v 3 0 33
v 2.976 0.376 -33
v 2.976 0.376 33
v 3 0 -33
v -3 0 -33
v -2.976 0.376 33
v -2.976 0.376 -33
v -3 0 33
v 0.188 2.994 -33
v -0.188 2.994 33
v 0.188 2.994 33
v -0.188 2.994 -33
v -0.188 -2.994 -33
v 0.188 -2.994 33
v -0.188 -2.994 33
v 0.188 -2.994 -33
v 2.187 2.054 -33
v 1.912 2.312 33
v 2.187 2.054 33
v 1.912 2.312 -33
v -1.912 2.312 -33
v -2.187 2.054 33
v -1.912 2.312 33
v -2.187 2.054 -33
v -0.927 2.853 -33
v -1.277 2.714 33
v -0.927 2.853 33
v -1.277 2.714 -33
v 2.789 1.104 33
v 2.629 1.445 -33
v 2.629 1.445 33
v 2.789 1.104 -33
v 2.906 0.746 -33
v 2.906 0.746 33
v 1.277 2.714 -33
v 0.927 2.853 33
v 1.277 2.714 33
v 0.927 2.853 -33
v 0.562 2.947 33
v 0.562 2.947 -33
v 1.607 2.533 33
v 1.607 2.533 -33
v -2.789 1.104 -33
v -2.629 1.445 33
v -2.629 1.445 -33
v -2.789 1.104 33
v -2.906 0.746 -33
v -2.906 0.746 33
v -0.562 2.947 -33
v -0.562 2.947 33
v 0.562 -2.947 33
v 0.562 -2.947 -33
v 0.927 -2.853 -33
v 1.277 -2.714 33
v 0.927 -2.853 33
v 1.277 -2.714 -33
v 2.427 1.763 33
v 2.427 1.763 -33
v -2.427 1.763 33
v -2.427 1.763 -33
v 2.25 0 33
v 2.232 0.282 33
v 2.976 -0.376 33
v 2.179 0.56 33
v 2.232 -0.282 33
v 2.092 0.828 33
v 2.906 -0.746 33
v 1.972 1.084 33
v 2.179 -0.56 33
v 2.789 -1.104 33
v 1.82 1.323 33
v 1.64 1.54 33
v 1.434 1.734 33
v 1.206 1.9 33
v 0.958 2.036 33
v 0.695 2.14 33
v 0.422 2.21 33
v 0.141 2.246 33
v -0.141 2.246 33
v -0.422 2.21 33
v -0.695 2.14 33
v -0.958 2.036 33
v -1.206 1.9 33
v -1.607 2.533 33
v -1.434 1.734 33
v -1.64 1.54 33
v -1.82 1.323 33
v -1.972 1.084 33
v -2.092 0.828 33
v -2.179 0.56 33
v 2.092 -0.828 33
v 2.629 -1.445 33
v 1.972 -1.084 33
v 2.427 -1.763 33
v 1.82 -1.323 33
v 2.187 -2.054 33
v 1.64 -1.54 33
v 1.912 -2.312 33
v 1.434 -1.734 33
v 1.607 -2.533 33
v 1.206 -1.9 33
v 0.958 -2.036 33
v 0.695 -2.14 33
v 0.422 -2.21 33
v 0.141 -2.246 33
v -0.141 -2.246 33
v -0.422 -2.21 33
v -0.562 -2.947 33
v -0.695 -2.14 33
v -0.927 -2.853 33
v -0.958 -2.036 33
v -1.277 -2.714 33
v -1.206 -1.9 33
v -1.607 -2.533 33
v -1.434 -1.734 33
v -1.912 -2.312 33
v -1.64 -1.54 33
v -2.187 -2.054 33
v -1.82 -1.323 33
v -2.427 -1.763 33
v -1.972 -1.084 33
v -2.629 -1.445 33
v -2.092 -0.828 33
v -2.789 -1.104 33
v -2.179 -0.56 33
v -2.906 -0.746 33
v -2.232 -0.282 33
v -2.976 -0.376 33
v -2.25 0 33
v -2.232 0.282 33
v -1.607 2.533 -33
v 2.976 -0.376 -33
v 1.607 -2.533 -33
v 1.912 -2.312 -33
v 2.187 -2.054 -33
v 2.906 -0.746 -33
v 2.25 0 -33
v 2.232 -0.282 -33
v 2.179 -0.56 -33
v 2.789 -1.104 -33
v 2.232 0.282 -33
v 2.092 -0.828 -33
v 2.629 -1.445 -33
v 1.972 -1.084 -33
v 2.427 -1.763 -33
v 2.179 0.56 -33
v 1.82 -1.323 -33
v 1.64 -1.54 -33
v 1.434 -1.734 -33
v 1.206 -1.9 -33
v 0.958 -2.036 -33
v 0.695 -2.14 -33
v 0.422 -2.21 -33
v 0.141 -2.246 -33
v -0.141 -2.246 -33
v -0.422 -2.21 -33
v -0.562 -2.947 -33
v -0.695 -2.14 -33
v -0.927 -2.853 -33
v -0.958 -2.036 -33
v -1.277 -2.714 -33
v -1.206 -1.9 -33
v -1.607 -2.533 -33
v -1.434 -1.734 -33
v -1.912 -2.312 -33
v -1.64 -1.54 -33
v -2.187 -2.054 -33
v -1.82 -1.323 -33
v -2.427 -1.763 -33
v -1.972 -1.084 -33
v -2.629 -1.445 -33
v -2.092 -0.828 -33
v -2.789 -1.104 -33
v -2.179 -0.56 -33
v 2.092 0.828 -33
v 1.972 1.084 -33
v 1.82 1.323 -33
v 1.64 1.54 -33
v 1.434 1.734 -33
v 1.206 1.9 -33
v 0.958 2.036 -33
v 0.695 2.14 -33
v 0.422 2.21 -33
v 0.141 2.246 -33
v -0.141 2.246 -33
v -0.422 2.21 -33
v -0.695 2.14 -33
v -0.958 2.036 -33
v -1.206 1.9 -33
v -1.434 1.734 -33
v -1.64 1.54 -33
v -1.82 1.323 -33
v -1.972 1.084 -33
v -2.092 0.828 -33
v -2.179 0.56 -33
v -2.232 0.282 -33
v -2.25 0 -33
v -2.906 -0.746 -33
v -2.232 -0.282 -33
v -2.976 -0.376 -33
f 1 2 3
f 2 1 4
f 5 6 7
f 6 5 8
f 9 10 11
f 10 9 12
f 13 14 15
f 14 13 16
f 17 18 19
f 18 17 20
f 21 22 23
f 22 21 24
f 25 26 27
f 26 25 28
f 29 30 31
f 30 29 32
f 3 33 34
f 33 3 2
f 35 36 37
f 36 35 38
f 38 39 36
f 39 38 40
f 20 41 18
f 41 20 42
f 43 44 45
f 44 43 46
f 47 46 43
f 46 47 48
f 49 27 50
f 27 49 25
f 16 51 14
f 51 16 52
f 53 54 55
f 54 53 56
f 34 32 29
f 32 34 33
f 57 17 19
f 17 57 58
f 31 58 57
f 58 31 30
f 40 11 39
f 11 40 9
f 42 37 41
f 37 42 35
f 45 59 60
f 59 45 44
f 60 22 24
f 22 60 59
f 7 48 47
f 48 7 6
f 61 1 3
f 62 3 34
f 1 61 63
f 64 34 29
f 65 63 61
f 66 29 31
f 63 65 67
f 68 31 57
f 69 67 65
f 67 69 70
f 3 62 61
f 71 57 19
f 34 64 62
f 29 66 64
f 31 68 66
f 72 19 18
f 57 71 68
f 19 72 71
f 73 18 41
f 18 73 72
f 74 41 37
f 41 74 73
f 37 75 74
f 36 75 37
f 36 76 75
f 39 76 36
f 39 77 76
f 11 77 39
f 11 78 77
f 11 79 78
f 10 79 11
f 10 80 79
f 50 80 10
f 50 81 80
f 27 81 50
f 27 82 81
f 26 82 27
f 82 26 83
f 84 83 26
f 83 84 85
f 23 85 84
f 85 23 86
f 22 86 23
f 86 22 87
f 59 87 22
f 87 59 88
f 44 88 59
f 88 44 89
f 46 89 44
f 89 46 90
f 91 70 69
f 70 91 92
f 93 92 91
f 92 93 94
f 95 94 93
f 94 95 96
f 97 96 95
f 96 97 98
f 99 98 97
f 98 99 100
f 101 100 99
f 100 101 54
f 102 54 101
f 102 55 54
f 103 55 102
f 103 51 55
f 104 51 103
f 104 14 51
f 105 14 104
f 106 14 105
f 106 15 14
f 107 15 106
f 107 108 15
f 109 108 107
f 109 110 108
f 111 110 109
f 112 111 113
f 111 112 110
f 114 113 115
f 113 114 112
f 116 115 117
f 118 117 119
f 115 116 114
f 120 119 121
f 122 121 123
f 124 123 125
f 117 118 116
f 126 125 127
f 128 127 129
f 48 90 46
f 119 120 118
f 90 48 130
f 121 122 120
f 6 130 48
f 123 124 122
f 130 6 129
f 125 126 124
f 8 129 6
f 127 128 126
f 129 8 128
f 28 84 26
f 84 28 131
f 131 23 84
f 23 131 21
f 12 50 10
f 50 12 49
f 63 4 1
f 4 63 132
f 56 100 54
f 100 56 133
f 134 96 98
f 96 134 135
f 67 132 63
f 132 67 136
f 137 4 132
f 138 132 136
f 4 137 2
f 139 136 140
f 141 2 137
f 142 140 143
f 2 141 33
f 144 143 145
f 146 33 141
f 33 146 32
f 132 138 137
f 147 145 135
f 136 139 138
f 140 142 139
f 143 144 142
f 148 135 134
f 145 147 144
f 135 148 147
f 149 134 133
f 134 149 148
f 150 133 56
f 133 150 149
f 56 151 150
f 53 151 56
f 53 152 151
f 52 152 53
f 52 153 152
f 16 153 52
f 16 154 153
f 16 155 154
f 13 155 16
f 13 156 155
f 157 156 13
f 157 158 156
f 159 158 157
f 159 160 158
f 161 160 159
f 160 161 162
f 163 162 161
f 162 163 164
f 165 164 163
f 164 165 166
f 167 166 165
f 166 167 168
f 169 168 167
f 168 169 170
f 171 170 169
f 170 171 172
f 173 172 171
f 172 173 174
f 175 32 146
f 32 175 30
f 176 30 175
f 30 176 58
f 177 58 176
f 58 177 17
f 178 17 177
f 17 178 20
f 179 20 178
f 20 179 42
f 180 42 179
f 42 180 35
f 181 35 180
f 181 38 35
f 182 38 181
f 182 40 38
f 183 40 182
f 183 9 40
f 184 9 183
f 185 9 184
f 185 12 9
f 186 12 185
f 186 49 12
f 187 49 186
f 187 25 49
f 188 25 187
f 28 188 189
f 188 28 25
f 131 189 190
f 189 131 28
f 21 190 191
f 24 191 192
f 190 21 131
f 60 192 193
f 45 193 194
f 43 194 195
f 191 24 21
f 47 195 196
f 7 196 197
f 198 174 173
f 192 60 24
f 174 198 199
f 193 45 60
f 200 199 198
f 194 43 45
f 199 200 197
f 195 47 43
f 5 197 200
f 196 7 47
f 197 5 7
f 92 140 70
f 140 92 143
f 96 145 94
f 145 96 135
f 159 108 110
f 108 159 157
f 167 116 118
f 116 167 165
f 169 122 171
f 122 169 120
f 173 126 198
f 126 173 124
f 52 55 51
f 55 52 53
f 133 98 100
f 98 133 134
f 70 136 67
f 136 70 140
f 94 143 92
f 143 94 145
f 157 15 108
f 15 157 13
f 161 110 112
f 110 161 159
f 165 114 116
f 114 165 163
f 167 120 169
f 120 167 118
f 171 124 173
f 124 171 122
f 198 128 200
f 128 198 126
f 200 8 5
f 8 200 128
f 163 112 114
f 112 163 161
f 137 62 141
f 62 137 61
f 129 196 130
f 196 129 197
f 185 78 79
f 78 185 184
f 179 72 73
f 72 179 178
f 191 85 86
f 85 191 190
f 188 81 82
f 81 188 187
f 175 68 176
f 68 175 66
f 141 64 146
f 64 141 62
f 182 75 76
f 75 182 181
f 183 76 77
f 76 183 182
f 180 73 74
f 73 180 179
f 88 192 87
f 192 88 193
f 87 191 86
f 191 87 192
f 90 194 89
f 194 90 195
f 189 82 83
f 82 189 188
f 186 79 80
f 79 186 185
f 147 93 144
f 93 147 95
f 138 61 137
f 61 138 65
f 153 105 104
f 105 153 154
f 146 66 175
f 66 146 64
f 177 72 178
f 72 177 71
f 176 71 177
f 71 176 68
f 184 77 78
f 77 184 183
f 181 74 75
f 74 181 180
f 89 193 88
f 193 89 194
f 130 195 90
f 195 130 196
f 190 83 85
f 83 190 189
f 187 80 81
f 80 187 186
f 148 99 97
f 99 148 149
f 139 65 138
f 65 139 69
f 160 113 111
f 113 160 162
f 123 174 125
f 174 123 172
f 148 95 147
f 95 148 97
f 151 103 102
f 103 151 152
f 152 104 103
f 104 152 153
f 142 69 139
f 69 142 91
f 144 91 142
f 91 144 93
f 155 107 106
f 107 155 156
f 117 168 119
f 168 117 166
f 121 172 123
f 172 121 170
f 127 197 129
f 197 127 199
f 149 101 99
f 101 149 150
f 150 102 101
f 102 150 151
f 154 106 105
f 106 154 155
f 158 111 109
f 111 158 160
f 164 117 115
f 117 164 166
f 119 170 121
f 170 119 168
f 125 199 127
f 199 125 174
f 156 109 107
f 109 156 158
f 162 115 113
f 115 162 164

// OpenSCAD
$fn = 50;


difference() {
	union() {
		translate(v = [0, 0, -33.0000000000]) {
			cylinder(h = 66, r = 3.0000000000);
		}
	}
	union() {
		translate(v = [0, 0, -100.0000000000]) {
			cylinder(h = 200, r = 2.2500000000);
		}
	}
}
